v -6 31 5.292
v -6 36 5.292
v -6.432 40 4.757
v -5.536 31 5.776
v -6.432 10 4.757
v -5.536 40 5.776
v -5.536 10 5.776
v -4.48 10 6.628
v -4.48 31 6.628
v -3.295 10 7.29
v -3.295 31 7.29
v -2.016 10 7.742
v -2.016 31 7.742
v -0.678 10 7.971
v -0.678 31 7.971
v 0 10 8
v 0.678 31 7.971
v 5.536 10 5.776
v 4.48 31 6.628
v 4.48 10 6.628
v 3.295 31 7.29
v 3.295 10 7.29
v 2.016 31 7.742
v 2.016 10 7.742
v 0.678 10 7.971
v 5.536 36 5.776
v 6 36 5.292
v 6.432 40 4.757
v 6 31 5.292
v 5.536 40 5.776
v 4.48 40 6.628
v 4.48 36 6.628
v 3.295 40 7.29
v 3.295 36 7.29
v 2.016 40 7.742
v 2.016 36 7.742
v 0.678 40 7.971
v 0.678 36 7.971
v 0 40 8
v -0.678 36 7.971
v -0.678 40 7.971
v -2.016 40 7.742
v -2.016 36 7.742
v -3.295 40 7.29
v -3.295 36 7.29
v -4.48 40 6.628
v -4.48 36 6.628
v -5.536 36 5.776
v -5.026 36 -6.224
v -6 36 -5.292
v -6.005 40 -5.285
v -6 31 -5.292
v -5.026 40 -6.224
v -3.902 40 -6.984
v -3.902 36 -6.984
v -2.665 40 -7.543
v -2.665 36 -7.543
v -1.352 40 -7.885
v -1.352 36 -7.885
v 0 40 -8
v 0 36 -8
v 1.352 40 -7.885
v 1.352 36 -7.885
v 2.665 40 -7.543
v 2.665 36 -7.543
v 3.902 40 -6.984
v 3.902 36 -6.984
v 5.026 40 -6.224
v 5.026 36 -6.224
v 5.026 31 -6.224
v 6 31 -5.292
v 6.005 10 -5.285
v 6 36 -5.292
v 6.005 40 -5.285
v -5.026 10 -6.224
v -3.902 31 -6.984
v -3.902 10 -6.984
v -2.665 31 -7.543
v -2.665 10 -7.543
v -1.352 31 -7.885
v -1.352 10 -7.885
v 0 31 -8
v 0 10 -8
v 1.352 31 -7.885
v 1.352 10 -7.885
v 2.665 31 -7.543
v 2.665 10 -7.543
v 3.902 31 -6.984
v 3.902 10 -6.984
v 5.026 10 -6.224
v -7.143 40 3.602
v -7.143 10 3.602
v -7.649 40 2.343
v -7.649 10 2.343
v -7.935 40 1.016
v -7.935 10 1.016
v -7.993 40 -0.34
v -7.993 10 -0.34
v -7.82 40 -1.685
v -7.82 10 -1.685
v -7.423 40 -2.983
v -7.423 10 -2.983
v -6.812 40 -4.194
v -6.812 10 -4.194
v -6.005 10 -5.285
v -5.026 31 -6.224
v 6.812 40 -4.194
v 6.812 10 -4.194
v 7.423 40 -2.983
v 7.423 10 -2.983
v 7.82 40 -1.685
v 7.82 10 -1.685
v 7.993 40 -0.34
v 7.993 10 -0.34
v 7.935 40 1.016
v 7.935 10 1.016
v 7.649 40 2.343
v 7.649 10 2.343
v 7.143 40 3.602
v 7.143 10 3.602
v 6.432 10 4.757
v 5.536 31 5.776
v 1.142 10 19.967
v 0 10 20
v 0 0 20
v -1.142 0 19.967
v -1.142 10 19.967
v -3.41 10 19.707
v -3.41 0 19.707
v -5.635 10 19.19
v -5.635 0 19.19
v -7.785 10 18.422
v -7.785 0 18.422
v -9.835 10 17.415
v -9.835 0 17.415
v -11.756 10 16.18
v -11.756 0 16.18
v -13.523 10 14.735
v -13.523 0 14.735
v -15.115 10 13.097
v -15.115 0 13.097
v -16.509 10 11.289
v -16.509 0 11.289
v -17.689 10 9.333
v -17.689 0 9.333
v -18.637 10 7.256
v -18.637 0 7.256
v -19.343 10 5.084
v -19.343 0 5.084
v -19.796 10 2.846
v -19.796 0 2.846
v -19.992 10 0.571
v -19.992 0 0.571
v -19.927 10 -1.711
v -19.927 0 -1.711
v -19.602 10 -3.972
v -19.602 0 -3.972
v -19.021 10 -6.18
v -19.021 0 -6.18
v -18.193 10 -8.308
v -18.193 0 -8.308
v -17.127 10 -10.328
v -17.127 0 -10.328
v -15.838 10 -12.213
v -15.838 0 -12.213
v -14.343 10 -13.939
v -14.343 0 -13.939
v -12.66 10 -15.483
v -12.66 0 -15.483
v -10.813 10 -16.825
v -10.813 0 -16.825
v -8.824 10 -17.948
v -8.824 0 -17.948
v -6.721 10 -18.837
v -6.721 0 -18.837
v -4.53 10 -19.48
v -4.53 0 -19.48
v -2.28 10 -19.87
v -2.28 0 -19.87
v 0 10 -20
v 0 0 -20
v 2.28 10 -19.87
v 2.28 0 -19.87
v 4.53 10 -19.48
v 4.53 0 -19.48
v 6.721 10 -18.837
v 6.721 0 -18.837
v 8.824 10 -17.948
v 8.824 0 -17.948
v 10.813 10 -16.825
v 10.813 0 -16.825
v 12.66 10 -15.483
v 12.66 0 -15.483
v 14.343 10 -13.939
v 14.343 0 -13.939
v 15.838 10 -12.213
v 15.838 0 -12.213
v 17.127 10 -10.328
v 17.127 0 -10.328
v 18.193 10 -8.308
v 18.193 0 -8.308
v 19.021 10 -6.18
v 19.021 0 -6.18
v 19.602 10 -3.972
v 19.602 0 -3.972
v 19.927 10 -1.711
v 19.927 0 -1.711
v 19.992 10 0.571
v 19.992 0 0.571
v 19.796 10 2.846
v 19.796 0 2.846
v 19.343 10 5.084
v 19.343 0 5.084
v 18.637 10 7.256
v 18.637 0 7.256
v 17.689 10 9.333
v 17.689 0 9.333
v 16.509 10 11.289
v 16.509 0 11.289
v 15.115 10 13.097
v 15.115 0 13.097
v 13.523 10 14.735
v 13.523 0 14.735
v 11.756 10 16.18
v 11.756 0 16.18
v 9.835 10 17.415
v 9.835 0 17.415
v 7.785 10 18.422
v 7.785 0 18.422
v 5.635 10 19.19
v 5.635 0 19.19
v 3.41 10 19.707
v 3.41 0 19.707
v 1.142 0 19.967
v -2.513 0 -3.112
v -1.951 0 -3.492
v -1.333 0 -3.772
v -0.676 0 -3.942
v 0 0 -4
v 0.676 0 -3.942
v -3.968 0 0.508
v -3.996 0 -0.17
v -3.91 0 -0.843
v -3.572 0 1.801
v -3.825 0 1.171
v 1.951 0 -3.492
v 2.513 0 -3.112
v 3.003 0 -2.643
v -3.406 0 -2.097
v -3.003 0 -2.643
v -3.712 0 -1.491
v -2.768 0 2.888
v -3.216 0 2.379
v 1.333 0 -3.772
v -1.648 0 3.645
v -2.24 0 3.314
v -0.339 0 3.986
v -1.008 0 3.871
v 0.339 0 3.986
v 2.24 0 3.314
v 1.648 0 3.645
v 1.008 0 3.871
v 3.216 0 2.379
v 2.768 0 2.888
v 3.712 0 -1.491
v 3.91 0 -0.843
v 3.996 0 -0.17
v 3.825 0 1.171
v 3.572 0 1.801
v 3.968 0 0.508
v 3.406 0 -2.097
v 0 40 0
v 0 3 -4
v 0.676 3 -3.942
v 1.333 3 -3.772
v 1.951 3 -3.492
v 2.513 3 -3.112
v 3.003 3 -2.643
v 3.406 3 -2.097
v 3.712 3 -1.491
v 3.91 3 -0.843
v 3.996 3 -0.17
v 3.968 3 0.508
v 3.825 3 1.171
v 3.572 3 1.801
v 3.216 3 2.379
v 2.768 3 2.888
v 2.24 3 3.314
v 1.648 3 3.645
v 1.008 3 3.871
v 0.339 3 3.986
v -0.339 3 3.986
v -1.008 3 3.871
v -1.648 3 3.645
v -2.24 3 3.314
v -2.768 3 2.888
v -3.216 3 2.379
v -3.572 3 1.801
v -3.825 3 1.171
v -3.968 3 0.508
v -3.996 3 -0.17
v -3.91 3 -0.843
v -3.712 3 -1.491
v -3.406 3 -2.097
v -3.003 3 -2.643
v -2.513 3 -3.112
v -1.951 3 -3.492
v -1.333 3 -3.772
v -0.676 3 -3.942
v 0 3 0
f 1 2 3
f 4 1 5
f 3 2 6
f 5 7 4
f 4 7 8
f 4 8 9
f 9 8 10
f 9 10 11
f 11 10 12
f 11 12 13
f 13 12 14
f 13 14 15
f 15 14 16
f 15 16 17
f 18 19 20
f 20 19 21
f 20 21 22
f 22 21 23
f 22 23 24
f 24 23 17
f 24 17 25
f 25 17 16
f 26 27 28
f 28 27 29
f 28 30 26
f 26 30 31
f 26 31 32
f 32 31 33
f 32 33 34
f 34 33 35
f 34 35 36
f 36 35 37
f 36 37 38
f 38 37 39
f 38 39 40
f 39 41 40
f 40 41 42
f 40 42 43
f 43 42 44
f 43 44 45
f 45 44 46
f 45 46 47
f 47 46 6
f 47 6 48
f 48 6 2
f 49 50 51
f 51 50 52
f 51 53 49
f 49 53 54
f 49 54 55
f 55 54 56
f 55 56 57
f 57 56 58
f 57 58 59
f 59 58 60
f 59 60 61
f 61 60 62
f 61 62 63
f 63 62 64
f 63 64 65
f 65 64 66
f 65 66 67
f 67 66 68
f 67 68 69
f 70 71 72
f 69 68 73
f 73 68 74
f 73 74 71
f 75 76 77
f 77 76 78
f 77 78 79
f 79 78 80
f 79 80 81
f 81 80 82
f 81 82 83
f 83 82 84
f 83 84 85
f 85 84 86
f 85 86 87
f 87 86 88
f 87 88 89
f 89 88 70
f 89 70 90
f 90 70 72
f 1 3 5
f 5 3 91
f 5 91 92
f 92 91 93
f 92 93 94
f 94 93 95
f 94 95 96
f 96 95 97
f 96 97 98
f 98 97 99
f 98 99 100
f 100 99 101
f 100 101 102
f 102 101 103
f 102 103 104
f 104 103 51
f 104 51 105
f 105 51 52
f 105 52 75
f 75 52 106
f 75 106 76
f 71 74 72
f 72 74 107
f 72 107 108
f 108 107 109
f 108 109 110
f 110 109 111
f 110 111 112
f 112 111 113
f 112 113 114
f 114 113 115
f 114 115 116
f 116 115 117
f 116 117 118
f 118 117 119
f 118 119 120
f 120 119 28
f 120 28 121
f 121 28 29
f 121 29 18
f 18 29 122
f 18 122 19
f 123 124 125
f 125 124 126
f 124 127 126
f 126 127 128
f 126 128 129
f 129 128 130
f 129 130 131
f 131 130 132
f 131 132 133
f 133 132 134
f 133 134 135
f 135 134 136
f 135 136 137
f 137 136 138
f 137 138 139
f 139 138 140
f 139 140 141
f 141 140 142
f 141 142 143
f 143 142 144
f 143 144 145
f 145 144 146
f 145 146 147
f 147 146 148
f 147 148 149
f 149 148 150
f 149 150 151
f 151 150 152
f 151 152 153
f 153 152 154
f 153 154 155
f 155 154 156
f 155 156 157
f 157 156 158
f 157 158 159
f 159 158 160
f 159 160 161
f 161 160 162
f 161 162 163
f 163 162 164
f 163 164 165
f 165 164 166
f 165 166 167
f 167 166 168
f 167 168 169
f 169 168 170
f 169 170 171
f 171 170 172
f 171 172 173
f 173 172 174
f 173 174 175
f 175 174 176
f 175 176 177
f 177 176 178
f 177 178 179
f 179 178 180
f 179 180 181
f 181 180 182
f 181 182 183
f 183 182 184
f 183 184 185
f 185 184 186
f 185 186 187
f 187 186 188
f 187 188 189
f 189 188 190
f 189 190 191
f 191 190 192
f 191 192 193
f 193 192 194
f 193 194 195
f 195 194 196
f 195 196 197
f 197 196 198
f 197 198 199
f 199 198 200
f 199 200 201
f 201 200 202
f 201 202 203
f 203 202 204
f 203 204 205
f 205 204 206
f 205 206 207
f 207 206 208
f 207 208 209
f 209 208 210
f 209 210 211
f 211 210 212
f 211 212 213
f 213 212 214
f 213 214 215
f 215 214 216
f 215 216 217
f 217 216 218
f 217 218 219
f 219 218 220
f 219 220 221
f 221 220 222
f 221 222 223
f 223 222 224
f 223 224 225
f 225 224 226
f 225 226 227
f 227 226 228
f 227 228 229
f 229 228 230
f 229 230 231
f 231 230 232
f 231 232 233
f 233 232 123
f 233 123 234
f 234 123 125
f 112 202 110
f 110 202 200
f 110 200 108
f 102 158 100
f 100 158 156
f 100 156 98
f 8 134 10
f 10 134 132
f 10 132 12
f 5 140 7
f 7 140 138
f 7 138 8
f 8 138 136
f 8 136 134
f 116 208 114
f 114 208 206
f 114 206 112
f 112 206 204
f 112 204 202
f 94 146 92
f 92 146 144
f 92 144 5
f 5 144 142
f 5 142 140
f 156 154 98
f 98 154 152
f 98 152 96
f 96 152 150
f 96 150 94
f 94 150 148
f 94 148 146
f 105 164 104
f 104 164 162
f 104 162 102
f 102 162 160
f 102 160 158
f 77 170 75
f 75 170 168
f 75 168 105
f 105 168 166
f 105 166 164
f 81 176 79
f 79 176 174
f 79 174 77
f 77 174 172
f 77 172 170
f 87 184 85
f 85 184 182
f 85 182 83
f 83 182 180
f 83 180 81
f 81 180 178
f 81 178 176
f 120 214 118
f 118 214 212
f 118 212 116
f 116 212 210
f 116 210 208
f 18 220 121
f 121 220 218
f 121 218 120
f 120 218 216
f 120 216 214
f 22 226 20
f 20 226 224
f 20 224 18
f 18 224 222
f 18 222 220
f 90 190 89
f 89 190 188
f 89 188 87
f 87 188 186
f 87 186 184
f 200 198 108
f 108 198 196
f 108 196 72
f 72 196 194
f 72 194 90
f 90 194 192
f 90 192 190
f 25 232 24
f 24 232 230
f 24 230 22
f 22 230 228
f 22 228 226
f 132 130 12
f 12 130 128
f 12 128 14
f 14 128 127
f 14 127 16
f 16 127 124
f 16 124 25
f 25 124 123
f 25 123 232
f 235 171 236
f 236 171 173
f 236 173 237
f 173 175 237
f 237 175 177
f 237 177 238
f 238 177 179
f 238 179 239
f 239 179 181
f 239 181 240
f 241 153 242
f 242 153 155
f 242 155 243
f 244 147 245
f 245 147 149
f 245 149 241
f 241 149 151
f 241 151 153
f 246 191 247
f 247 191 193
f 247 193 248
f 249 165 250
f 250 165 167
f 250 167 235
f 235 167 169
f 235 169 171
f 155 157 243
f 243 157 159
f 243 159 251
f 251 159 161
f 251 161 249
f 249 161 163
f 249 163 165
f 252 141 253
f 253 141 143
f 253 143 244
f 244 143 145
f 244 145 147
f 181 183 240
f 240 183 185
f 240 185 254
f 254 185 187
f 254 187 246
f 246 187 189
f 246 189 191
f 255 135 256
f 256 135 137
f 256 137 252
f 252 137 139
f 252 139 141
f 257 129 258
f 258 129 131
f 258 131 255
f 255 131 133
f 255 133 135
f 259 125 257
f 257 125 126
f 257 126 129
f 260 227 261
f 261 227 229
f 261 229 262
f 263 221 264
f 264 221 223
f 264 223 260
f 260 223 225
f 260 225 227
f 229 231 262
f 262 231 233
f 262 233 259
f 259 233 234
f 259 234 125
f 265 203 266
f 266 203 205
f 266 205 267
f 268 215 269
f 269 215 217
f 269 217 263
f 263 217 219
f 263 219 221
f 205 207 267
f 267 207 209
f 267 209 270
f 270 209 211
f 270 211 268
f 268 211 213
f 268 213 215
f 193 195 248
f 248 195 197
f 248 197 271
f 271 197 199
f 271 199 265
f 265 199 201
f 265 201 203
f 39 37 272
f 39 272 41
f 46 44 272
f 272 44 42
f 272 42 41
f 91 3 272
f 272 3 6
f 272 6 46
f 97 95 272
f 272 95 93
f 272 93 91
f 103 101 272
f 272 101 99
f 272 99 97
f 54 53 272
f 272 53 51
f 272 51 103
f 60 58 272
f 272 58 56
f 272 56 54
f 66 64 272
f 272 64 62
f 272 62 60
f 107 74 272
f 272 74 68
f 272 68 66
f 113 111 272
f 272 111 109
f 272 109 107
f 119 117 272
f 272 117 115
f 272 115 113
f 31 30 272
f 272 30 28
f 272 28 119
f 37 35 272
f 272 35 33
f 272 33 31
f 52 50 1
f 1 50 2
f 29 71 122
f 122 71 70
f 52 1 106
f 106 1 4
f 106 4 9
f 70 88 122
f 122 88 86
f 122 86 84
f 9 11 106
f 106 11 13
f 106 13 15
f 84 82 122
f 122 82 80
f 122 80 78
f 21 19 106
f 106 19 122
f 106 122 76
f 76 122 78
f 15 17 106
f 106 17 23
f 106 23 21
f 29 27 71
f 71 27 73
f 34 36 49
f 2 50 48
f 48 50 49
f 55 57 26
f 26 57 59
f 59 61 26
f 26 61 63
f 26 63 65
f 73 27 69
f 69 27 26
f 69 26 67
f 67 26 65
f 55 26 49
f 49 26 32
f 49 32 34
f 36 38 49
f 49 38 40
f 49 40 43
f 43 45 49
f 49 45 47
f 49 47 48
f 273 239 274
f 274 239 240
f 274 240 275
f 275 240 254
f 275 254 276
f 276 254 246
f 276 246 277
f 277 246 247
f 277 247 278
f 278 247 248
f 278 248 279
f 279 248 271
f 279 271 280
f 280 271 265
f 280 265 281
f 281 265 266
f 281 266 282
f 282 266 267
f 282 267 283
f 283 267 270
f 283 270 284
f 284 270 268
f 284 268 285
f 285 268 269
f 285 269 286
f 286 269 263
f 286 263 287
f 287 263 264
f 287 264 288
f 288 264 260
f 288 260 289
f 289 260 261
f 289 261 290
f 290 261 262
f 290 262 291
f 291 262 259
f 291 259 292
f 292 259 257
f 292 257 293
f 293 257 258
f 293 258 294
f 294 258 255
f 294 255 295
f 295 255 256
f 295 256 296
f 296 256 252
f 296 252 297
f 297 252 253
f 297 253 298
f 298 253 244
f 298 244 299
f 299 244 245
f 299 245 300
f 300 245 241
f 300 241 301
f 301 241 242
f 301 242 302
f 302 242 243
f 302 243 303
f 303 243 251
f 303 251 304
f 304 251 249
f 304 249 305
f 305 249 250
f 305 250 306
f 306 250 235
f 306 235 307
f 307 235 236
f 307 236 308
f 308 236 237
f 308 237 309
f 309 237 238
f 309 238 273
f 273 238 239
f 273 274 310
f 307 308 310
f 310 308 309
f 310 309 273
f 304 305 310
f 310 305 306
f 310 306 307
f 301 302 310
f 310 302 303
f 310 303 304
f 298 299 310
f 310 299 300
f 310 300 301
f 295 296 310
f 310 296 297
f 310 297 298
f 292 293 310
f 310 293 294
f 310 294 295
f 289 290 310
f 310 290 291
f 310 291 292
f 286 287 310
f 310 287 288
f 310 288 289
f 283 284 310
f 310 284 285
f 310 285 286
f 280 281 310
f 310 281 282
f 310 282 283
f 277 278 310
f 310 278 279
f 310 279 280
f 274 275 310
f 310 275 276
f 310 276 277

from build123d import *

# Parameters (mm, degrees)
SKETCH2_R               = 20
BOSS_EXTRUDE1_DEPTH     = 10
SKETCH3_R               = 8
BOSS_EXTRUDE2_DEPTH     = 30
CUT_EXTRUDE1_DEPTH      = 49.989794856
CUT_EXTRUDE1_DEPTH_BACK = 49.989794856
SKETCH4_W               = 12
SKETCH4_H               = 5
SKETCH5_R               = 4
CUT_EXTRUDE2_DEPTH      = 3


with BuildPart() as part:
    # Sketch2 → Boss-Extrude1 (new body)
    with BuildSketch(Plane(origin=(0, 0, 0), x_dir=(1, 0, 0), z_dir=(0, 1, 0))):
        with Locations(Location((0, 0, 0), (0, 0, 270))):
            Circle(SKETCH2_R)
    extrude(amount=BOSS_EXTRUDE1_DEPTH)

    # Sketch3 → Boss-Extrude2 (add)
    with BuildSketch(Plane(origin=(0, 10, 0), x_dir=(1, 0, 0), z_dir=(0, 1, 0))):
        with Locations(Location((0, 0, 0), (0, 0, 270))):
            Circle(SKETCH3_R)
    extrude(amount=BOSS_EXTRUDE2_DEPTH)

    # Sketch4 → Cut-Extrude1 (cut, two sides: drawn at the far end of the back side and taken through both)
    with BuildSketch(Plane.XY.offset(-CUT_EXTRUDE1_DEPTH_BACK)):
        with Locations((0, 33.5)):
            Rectangle(SKETCH4_W, SKETCH4_H)
    extrude(amount=CUT_EXTRUDE1_DEPTH + CUT_EXTRUDE1_DEPTH_BACK, mode=Mode.SUBTRACT)

    # Sketch5 → Cut-Extrude2 (cut)
    with BuildSketch(Plane.XZ):
        with Locations(Location((0, 0, 0), (0, 0, 270))):
            Circle(SKETCH5_R)
    extrude(amount=-CUT_EXTRUDE2_DEPTH, mode=Mode.SUBTRACT)


solid = part.part
